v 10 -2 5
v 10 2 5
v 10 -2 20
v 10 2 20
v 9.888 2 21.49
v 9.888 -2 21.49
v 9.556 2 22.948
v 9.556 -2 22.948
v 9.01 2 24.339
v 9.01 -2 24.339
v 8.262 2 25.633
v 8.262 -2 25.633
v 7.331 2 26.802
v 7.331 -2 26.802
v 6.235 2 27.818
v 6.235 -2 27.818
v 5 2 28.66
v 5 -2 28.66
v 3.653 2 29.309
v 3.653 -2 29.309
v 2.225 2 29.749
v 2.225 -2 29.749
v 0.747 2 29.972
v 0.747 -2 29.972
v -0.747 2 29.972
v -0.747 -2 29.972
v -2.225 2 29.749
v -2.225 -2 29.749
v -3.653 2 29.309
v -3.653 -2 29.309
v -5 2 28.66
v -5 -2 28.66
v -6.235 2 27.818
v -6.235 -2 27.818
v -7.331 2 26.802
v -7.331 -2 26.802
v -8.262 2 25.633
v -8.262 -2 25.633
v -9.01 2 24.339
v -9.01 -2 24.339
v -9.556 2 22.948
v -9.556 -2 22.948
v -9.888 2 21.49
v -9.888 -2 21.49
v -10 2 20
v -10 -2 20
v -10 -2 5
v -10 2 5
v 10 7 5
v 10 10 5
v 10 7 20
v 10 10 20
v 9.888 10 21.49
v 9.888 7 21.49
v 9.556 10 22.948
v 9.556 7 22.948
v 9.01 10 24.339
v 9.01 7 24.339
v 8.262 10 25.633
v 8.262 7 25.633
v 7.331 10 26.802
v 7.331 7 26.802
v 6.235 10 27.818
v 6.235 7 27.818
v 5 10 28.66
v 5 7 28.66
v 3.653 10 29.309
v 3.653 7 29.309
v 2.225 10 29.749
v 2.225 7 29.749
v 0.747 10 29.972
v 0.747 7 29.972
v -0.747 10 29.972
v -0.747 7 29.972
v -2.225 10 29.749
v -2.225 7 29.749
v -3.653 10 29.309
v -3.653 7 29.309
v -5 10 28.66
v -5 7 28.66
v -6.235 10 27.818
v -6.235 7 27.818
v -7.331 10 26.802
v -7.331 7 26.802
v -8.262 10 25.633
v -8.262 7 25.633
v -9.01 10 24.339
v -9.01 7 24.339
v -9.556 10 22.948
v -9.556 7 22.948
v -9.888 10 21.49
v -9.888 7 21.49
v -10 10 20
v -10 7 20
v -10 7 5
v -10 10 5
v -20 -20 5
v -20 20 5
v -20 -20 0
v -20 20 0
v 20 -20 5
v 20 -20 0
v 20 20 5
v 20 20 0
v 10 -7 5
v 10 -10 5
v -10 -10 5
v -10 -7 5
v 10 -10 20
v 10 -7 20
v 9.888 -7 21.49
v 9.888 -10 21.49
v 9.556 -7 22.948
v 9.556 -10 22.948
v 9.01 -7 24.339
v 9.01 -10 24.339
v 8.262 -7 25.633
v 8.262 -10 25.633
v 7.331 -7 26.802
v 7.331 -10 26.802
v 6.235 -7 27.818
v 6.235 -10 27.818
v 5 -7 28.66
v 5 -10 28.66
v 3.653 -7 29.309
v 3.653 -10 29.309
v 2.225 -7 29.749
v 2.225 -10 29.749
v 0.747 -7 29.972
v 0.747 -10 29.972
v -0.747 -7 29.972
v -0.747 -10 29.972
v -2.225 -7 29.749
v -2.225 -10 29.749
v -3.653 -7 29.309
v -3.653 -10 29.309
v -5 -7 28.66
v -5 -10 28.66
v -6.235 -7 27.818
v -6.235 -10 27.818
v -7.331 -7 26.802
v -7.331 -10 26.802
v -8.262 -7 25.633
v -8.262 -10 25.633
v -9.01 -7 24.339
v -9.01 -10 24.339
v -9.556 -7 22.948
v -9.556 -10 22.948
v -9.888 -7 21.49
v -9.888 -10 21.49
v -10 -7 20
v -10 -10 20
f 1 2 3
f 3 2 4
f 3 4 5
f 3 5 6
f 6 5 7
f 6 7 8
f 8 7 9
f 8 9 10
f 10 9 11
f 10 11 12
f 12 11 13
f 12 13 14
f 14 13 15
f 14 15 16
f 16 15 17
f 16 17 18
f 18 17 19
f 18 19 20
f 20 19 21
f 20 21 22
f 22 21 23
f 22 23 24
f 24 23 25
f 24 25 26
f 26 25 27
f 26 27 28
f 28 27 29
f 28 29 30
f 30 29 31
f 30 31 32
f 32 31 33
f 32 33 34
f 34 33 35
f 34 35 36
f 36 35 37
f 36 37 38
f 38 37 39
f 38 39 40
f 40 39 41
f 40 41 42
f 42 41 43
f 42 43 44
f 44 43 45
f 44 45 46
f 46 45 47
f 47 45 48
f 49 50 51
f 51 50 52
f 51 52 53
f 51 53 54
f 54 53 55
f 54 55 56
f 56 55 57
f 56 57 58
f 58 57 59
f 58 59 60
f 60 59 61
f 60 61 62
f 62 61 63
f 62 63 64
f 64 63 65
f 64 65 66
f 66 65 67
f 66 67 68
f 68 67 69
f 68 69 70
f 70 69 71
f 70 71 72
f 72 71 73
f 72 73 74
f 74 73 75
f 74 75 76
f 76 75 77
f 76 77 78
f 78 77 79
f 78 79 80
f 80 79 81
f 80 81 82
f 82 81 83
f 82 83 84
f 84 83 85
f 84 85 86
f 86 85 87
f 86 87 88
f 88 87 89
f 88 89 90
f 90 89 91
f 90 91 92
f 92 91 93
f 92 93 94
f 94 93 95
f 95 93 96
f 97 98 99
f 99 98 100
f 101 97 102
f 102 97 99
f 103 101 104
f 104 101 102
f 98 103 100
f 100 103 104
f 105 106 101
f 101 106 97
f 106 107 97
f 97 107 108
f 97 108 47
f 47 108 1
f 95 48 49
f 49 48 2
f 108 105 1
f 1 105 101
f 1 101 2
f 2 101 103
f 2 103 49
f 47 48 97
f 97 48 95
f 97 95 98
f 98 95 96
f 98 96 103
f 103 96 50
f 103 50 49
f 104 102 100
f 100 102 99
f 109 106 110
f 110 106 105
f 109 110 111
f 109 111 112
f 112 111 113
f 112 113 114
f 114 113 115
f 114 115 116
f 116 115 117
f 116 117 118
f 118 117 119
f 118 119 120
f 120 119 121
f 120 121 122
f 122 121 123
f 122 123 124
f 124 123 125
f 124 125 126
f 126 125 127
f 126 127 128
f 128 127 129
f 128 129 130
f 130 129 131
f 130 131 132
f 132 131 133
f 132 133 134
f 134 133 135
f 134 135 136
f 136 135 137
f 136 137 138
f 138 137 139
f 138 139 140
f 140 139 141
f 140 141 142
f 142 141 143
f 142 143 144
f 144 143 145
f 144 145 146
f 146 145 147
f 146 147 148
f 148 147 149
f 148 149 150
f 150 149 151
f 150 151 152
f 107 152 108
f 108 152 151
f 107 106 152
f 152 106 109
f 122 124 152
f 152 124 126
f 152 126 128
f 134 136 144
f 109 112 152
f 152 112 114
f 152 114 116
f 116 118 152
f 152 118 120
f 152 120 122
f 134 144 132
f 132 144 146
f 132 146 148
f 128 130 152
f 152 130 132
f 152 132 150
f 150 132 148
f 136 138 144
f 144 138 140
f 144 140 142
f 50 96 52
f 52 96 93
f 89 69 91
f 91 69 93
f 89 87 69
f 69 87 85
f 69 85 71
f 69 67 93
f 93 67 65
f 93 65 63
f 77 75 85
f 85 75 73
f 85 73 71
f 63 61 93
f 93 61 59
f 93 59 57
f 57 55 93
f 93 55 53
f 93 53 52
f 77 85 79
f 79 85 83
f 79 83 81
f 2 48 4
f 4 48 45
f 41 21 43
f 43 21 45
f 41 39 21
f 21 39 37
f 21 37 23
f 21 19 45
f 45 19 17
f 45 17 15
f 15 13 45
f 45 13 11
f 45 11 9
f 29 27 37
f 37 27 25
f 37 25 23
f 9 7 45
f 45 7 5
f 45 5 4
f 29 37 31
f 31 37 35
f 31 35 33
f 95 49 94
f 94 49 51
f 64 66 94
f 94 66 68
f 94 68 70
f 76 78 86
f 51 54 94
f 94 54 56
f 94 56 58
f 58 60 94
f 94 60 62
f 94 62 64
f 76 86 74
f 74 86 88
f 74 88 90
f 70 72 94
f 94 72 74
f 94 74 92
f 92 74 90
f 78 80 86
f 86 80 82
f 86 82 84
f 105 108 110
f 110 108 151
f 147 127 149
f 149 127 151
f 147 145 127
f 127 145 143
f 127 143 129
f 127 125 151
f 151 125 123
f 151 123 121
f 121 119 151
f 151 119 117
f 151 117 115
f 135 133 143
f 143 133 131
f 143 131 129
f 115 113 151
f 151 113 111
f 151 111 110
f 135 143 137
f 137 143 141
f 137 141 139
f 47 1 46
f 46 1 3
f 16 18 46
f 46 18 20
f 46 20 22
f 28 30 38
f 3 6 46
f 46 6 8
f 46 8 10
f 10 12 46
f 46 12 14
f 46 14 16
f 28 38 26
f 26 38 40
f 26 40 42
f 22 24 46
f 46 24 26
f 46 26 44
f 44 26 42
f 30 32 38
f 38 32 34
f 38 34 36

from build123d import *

# Parameters (mm, degrees)
SKETCH1_W           = 40
SKETCH1_H           = 40
BOSS_EXTRUDE1_DEPTH = 5
BOSS_EXTRUDE2_START = 10
BOSS_EXTRUDE2_DEPTH = 20
CUT_EXTRUDE1_START  = -3
CUT_EXTRUDE1_DEPTH  = 5
CUT_EXTRUDE2_START  = -12
CUT_EXTRUDE2_DEPTH  = 5


with BuildPart() as part:
    # Sketch1 → Boss-Extrude1 (new body)
    with BuildSketch(Plane.XY):
        Rectangle(SKETCH1_W, SKETCH1_H)
    extrude(amount=BOSS_EXTRUDE1_DEPTH)

    # Sketch2 → Boss-Extrude2 (add)
    with BuildSketch(Plane(origin=(0, 0, 0), x_dir=(1, 0, 0), z_dir=(0, 1, 0)).offset(BOSS_EXTRUDE2_START)):
        with BuildLine():
            Line((10, -5), (-10, -5))
            Line((-10, -5), (-10, -20))
            ThreePointArc((-10, -20), (0, -30), (10, -20))
            Line((10, -20), (10, -5))
        make_face()
    extrude(amount=-BOSS_EXTRUDE2_DEPTH)

    # Sketch3 → Cut-Extrude1 (cut)
    with BuildSketch(Plane(origin=(0, 10, 0), x_dir=(1, 0, 0), z_dir=(0, 1, 0)).offset(CUT_EXTRUDE1_START)):
        with BuildLine():
            Line((10, -20), (10, -5))
            Line((10, -5), (-10, -5))
            Line((-10, -5), (-10, -20))
            ThreePointArc((-10, -20), (0, -30), (10, -20))
        make_face()
    extrude(amount=-CUT_EXTRUDE1_DEPTH, mode=Mode.SUBTRACT)

    # Sketch4 → Cut-Extrude2 (cut)
    with BuildSketch(Plane(origin=(0, 10, 0), x_dir=(1, 0, 0), z_dir=(0, 1, 0)).offset(CUT_EXTRUDE2_START)):
        with BuildLine():
            Line((10, -20), (10, -5))
            Line((10, -5), (-10, -5))
            Line((-10, -5), (-10, -20))
            ThreePointArc((-10, -20), (0, -30), (10, -20))
        make_face()
    extrude(amount=-CUT_EXTRUDE2_DEPTH, mode=Mode.SUBTRACT)


solid = part.part
